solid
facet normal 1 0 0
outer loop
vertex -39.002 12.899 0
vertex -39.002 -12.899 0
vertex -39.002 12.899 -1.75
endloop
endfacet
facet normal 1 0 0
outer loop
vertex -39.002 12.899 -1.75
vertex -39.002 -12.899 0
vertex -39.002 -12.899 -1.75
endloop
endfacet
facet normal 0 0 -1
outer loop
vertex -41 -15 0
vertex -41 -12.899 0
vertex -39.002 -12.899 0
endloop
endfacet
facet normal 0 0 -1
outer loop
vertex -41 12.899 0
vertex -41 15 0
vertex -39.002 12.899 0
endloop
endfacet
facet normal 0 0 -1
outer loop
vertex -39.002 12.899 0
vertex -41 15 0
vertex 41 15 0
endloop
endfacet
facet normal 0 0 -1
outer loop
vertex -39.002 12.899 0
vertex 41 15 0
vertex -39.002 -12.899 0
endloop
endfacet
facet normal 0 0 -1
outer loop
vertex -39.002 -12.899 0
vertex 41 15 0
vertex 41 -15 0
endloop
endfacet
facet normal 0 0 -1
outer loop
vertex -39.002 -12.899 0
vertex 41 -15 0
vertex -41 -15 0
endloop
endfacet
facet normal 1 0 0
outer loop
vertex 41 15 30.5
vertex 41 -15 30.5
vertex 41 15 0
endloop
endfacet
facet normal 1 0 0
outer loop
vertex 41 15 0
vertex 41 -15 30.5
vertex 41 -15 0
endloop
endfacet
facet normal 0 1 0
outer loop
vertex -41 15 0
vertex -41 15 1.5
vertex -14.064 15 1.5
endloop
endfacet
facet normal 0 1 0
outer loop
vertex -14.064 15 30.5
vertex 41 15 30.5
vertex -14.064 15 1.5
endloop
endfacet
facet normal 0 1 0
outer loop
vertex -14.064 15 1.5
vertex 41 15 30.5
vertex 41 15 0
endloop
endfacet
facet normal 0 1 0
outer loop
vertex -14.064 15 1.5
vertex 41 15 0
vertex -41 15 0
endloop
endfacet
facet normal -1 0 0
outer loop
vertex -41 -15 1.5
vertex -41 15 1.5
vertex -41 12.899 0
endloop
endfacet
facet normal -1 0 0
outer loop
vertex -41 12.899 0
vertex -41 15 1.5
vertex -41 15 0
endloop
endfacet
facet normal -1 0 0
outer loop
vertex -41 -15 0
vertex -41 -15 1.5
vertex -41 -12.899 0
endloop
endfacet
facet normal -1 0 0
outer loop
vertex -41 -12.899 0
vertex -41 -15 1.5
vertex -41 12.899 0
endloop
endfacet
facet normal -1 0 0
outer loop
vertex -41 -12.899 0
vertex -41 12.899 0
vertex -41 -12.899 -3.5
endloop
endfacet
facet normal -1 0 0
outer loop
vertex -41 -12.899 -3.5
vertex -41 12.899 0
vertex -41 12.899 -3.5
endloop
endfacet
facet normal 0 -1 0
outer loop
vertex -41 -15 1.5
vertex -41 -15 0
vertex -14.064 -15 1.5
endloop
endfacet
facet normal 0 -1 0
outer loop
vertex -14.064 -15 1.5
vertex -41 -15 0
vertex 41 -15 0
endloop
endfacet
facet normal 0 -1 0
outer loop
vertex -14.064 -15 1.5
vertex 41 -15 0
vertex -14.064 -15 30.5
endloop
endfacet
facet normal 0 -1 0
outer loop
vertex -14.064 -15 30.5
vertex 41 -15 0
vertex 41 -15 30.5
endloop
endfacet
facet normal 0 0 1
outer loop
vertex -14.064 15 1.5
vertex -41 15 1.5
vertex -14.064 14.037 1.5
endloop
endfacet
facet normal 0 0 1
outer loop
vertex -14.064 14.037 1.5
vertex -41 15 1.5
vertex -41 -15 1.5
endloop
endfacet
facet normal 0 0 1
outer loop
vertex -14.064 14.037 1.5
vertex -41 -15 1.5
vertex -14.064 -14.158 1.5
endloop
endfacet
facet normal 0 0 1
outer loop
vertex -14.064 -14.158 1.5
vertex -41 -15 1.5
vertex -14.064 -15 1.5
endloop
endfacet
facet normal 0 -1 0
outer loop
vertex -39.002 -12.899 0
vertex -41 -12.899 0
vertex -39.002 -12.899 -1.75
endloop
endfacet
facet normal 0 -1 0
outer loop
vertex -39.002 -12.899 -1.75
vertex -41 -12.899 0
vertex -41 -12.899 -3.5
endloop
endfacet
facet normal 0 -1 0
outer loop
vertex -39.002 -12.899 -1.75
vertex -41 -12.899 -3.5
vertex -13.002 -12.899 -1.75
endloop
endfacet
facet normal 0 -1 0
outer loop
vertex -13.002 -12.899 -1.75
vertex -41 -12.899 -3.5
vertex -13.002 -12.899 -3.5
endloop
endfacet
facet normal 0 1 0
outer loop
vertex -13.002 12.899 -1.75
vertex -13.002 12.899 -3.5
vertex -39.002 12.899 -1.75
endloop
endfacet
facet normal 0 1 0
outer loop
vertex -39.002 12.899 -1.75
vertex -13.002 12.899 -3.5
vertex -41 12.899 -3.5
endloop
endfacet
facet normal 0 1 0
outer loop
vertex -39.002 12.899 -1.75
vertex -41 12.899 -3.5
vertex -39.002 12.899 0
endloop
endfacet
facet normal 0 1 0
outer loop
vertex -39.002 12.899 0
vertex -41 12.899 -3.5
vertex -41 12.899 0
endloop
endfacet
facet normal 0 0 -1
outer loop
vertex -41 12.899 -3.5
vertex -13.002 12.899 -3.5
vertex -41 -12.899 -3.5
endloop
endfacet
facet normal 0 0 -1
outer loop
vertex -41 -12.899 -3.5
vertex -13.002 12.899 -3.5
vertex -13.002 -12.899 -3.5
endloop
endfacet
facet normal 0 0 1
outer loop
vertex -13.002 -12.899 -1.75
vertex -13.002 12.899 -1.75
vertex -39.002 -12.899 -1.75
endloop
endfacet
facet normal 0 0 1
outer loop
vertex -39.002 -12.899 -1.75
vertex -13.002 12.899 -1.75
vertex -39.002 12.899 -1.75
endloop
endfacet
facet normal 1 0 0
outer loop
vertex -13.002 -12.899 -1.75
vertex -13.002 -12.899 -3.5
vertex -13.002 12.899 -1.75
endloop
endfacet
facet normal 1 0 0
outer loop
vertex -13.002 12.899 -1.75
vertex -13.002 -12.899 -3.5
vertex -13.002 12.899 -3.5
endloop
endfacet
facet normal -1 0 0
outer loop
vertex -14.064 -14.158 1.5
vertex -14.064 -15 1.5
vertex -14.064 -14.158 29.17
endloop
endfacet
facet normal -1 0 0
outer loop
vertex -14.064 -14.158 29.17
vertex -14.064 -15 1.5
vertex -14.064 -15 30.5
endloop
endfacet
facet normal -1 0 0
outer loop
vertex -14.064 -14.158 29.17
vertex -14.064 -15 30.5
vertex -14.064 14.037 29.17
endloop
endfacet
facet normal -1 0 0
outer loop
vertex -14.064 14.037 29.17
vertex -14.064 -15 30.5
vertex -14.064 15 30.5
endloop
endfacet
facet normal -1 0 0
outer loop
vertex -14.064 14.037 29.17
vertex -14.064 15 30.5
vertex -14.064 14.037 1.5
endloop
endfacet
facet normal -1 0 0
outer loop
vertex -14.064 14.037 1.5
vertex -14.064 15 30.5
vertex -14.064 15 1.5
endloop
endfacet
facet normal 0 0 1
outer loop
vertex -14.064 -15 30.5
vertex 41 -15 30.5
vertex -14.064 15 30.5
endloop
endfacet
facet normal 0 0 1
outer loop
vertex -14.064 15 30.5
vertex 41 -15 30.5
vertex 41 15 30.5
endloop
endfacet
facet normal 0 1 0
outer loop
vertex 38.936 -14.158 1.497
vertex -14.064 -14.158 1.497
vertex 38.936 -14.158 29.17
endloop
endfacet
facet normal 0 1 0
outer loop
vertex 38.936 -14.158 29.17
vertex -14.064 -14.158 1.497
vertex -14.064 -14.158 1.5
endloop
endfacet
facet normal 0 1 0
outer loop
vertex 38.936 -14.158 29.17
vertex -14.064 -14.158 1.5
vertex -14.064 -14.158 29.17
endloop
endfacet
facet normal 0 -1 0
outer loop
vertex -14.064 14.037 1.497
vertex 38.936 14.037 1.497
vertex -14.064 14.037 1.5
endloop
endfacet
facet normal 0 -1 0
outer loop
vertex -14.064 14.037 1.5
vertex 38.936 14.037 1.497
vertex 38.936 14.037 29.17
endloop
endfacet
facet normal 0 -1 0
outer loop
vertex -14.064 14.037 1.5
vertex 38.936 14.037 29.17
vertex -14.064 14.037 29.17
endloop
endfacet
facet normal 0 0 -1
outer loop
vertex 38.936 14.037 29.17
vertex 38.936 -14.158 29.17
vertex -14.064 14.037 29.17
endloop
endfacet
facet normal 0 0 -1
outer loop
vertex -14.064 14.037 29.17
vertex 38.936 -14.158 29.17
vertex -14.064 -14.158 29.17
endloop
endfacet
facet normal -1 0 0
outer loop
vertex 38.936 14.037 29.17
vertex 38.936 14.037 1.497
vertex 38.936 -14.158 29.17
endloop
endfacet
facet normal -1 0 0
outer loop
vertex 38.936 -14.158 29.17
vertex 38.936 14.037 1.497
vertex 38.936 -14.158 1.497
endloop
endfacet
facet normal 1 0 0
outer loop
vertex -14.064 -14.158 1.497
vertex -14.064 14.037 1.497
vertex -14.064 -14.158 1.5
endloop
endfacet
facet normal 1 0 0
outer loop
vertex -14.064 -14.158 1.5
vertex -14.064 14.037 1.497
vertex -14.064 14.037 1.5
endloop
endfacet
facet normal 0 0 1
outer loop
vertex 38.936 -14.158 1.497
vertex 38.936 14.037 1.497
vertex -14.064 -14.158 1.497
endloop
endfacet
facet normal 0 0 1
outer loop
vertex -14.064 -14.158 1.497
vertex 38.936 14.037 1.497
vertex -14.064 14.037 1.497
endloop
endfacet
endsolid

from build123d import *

# Parameters (mm, degrees)
SKETCH_1_W          = 82
SKETCH_1_H          = 30
EXTRUDE_1_DEPTH     = 1.5
SKETCH_2_W          = 1.997612732
SKETCH_2_H          = 25.79850023
EXTRUDE_3_DEPTH     = 3.5
SKETCH_4_W          = 1.75
SKETCH_4_H          = 25.79850023
EXTRUDE_4_DEPTH     = 26
SKETCH_5_W          = 55.064096776
SKETCH_5_H          = 30
EXTRUDE_5_DEPTH     = 29
SKETCH_6_W          = 26.352675357
SKETCH_6_H          = 28.194959652
CUT_EXTRUDE_1_DEPTH = 53
SKETCH_8_W          = 53
SKETCH_8_H          = 28.194959652
CUT_EXTRUDE_2_DEPTH = 1.32


with BuildPart() as part:
    # 草圖1 → 填料-伸長1 (new body)
    with BuildSketch(Plane.XY):
        Rectangle(SKETCH_1_W, SKETCH_1_H)
    extrude(amount=EXTRUDE_1_DEPTH)

    # 草圖2 → 填料-伸長3 (add)
    with BuildSketch(Plane(origin=(0, 0, 0), x_dir=(-1, 0, 0), z_dir=(0, 0, -1))):
        with Locations((40.001193634, 0)):
            Rectangle(SKETCH_2_W, SKETCH_2_H)
    extrude(amount=EXTRUDE_3_DEPTH)

    # 草圖4 → 填料-伸長4 (add)
    with BuildSketch(Plane(origin=(-39.002387268, 0, 0), x_dir=(0, 0, -1), z_dir=(1, 0, 0))):
        with Locations((2.625, 0)):
            Rectangle(SKETCH_4_W, SKETCH_4_H)
    extrude(amount=EXTRUDE_4_DEPTH)

    # 草圖5 → 填料-伸長5 (add)
    with BuildSketch(Plane.XY.offset(1.5)):
        with Locations((13.467951612, 0)):
            Rectangle(SKETCH_5_W, SKETCH_5_H)
    extrude(amount=EXTRUDE_5_DEPTH)

    # 草圖6 → 除料-伸長1 (cut)
    with BuildSketch(Plane.ZY.offset(14.064096776)):
        with Locations((15.993727328, -0.060074488)):
            Rectangle(SKETCH_6_W, SKETCH_6_H)
    extrude(amount=-CUT_EXTRUDE_1_DEPTH, mode=Mode.SUBTRACT)

    # 草圖8 → 除料-伸長2 (cut)
    with BuildSketch(Plane.XY.offset(2.817389649)):
        with Locations((12.435903224, -0.060074488)):
            Rectangle(SKETCH_8_W, SKETCH_8_H)
    extrude(amount=-CUT_EXTRUDE_2_DEPTH, mode=Mode.SUBTRACT)


solid = part.part
